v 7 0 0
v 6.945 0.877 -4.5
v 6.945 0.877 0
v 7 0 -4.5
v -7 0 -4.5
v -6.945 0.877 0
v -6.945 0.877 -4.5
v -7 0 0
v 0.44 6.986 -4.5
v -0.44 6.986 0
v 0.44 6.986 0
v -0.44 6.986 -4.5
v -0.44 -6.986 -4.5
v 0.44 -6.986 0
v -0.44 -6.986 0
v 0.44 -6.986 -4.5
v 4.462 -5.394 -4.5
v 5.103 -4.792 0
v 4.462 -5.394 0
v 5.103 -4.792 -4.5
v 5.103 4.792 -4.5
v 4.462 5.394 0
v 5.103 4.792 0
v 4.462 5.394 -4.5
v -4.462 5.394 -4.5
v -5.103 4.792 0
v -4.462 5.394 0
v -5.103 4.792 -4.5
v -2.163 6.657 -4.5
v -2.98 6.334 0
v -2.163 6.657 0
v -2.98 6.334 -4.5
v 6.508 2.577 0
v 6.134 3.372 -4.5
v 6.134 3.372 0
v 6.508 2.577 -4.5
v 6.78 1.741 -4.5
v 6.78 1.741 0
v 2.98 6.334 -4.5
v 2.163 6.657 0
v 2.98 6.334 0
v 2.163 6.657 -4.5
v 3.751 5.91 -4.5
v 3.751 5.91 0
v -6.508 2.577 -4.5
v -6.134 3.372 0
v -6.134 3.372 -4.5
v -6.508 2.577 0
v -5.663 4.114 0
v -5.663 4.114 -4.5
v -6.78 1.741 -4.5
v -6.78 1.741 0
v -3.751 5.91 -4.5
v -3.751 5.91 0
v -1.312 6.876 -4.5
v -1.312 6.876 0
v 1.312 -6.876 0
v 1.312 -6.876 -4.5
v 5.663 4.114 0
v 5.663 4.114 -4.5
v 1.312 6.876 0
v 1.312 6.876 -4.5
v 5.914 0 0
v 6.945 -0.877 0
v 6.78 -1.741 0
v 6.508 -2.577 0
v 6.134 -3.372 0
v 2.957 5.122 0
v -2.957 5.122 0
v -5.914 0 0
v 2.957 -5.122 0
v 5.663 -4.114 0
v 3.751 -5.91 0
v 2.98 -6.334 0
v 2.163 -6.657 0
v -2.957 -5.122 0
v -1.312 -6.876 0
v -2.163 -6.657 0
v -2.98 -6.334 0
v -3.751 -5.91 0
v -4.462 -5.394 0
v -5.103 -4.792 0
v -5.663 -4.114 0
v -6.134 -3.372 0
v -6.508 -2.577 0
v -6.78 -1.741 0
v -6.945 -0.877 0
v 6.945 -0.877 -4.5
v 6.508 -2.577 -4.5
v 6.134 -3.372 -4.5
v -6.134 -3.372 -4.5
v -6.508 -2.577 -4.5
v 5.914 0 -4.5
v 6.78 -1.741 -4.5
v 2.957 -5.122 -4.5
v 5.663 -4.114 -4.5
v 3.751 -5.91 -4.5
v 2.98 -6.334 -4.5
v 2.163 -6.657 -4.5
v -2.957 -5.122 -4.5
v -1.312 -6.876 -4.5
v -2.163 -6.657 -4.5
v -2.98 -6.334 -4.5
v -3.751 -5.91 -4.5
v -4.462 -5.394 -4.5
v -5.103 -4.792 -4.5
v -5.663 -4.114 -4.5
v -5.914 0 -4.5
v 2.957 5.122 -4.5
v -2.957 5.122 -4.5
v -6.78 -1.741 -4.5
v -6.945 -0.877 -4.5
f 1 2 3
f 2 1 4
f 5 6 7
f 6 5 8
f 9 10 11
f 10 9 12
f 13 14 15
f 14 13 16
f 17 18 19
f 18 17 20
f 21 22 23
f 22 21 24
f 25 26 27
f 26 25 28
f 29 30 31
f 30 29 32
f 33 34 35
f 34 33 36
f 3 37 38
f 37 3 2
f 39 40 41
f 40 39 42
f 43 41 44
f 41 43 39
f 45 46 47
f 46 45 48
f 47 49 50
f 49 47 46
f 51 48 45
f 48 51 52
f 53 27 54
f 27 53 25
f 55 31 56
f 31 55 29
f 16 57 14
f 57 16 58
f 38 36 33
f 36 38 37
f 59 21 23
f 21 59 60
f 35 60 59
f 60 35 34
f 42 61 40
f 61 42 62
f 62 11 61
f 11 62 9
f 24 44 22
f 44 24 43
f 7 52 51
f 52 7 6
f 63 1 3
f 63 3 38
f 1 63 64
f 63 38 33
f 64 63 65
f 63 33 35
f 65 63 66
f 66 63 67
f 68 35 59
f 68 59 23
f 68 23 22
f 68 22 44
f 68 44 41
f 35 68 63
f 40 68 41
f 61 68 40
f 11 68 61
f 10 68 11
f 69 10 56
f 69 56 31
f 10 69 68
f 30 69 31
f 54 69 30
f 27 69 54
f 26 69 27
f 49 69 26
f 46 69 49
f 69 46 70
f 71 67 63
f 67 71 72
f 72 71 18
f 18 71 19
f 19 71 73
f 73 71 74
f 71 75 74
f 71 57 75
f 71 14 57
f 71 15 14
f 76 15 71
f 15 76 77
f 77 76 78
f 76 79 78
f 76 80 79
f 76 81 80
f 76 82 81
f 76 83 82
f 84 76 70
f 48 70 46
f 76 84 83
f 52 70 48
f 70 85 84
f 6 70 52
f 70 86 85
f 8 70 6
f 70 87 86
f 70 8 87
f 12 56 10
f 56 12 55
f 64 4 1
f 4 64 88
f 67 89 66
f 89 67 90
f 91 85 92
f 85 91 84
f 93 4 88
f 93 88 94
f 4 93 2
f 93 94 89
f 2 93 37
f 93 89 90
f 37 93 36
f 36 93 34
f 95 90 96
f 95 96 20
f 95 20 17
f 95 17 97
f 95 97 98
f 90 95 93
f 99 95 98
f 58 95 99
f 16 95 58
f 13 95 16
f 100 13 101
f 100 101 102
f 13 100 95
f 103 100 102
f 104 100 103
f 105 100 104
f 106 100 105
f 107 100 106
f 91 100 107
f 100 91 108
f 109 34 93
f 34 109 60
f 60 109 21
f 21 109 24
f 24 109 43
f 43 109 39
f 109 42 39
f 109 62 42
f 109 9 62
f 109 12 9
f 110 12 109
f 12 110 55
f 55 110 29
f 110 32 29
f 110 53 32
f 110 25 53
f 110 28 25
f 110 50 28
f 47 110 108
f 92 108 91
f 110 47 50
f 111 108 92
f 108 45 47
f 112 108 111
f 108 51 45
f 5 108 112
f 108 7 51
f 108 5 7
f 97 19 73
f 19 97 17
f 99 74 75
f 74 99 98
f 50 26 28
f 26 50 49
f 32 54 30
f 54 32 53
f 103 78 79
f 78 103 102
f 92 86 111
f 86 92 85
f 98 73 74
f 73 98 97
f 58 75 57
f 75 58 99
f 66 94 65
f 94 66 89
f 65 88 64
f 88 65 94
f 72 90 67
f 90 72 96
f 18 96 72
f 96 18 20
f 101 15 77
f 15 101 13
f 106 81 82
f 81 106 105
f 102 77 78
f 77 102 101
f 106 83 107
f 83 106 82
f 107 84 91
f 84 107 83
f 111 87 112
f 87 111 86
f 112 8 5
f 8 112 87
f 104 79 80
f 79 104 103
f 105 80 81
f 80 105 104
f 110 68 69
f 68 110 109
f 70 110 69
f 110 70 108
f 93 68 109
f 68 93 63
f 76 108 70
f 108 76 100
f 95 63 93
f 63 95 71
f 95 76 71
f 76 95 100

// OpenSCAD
$fn = 50;


difference() {
	union() {
		translate(v = [0, 0, -4.5000000000]) {
			cylinder(h = 4.5000000000, r = 7.0000000000);
		}
		translate(v = [0, 0, -6.0000000000]) {
			cylinder(h = 6, r = 2.8750000000);
		}
	}
	union() {
		translate(v = [0, 0, 0]) {
			rotate(a = [0, 0, 0]) {
				difference() {
					union() {
						translate(v = [0, 0, -5]) {
							linear_extrude(height = 5) {
								polygon(points = [[5.9142500000, 0.0000000000], [2.9571250000, 5.1218907443], [-2.9571250000, 5.1218907443], [-5.9142500000, 0.0000000000], [-2.9571250000, -5.1218907443], [2.9571250000, -5.1218907443]]);
							}
						}
					}
					union();
				}
			}
		}
		#translate(v = [0, 0, -100.0000000000]) {
			cylinder(h = 200, r = 3.2500000000);
		}
	}
}
